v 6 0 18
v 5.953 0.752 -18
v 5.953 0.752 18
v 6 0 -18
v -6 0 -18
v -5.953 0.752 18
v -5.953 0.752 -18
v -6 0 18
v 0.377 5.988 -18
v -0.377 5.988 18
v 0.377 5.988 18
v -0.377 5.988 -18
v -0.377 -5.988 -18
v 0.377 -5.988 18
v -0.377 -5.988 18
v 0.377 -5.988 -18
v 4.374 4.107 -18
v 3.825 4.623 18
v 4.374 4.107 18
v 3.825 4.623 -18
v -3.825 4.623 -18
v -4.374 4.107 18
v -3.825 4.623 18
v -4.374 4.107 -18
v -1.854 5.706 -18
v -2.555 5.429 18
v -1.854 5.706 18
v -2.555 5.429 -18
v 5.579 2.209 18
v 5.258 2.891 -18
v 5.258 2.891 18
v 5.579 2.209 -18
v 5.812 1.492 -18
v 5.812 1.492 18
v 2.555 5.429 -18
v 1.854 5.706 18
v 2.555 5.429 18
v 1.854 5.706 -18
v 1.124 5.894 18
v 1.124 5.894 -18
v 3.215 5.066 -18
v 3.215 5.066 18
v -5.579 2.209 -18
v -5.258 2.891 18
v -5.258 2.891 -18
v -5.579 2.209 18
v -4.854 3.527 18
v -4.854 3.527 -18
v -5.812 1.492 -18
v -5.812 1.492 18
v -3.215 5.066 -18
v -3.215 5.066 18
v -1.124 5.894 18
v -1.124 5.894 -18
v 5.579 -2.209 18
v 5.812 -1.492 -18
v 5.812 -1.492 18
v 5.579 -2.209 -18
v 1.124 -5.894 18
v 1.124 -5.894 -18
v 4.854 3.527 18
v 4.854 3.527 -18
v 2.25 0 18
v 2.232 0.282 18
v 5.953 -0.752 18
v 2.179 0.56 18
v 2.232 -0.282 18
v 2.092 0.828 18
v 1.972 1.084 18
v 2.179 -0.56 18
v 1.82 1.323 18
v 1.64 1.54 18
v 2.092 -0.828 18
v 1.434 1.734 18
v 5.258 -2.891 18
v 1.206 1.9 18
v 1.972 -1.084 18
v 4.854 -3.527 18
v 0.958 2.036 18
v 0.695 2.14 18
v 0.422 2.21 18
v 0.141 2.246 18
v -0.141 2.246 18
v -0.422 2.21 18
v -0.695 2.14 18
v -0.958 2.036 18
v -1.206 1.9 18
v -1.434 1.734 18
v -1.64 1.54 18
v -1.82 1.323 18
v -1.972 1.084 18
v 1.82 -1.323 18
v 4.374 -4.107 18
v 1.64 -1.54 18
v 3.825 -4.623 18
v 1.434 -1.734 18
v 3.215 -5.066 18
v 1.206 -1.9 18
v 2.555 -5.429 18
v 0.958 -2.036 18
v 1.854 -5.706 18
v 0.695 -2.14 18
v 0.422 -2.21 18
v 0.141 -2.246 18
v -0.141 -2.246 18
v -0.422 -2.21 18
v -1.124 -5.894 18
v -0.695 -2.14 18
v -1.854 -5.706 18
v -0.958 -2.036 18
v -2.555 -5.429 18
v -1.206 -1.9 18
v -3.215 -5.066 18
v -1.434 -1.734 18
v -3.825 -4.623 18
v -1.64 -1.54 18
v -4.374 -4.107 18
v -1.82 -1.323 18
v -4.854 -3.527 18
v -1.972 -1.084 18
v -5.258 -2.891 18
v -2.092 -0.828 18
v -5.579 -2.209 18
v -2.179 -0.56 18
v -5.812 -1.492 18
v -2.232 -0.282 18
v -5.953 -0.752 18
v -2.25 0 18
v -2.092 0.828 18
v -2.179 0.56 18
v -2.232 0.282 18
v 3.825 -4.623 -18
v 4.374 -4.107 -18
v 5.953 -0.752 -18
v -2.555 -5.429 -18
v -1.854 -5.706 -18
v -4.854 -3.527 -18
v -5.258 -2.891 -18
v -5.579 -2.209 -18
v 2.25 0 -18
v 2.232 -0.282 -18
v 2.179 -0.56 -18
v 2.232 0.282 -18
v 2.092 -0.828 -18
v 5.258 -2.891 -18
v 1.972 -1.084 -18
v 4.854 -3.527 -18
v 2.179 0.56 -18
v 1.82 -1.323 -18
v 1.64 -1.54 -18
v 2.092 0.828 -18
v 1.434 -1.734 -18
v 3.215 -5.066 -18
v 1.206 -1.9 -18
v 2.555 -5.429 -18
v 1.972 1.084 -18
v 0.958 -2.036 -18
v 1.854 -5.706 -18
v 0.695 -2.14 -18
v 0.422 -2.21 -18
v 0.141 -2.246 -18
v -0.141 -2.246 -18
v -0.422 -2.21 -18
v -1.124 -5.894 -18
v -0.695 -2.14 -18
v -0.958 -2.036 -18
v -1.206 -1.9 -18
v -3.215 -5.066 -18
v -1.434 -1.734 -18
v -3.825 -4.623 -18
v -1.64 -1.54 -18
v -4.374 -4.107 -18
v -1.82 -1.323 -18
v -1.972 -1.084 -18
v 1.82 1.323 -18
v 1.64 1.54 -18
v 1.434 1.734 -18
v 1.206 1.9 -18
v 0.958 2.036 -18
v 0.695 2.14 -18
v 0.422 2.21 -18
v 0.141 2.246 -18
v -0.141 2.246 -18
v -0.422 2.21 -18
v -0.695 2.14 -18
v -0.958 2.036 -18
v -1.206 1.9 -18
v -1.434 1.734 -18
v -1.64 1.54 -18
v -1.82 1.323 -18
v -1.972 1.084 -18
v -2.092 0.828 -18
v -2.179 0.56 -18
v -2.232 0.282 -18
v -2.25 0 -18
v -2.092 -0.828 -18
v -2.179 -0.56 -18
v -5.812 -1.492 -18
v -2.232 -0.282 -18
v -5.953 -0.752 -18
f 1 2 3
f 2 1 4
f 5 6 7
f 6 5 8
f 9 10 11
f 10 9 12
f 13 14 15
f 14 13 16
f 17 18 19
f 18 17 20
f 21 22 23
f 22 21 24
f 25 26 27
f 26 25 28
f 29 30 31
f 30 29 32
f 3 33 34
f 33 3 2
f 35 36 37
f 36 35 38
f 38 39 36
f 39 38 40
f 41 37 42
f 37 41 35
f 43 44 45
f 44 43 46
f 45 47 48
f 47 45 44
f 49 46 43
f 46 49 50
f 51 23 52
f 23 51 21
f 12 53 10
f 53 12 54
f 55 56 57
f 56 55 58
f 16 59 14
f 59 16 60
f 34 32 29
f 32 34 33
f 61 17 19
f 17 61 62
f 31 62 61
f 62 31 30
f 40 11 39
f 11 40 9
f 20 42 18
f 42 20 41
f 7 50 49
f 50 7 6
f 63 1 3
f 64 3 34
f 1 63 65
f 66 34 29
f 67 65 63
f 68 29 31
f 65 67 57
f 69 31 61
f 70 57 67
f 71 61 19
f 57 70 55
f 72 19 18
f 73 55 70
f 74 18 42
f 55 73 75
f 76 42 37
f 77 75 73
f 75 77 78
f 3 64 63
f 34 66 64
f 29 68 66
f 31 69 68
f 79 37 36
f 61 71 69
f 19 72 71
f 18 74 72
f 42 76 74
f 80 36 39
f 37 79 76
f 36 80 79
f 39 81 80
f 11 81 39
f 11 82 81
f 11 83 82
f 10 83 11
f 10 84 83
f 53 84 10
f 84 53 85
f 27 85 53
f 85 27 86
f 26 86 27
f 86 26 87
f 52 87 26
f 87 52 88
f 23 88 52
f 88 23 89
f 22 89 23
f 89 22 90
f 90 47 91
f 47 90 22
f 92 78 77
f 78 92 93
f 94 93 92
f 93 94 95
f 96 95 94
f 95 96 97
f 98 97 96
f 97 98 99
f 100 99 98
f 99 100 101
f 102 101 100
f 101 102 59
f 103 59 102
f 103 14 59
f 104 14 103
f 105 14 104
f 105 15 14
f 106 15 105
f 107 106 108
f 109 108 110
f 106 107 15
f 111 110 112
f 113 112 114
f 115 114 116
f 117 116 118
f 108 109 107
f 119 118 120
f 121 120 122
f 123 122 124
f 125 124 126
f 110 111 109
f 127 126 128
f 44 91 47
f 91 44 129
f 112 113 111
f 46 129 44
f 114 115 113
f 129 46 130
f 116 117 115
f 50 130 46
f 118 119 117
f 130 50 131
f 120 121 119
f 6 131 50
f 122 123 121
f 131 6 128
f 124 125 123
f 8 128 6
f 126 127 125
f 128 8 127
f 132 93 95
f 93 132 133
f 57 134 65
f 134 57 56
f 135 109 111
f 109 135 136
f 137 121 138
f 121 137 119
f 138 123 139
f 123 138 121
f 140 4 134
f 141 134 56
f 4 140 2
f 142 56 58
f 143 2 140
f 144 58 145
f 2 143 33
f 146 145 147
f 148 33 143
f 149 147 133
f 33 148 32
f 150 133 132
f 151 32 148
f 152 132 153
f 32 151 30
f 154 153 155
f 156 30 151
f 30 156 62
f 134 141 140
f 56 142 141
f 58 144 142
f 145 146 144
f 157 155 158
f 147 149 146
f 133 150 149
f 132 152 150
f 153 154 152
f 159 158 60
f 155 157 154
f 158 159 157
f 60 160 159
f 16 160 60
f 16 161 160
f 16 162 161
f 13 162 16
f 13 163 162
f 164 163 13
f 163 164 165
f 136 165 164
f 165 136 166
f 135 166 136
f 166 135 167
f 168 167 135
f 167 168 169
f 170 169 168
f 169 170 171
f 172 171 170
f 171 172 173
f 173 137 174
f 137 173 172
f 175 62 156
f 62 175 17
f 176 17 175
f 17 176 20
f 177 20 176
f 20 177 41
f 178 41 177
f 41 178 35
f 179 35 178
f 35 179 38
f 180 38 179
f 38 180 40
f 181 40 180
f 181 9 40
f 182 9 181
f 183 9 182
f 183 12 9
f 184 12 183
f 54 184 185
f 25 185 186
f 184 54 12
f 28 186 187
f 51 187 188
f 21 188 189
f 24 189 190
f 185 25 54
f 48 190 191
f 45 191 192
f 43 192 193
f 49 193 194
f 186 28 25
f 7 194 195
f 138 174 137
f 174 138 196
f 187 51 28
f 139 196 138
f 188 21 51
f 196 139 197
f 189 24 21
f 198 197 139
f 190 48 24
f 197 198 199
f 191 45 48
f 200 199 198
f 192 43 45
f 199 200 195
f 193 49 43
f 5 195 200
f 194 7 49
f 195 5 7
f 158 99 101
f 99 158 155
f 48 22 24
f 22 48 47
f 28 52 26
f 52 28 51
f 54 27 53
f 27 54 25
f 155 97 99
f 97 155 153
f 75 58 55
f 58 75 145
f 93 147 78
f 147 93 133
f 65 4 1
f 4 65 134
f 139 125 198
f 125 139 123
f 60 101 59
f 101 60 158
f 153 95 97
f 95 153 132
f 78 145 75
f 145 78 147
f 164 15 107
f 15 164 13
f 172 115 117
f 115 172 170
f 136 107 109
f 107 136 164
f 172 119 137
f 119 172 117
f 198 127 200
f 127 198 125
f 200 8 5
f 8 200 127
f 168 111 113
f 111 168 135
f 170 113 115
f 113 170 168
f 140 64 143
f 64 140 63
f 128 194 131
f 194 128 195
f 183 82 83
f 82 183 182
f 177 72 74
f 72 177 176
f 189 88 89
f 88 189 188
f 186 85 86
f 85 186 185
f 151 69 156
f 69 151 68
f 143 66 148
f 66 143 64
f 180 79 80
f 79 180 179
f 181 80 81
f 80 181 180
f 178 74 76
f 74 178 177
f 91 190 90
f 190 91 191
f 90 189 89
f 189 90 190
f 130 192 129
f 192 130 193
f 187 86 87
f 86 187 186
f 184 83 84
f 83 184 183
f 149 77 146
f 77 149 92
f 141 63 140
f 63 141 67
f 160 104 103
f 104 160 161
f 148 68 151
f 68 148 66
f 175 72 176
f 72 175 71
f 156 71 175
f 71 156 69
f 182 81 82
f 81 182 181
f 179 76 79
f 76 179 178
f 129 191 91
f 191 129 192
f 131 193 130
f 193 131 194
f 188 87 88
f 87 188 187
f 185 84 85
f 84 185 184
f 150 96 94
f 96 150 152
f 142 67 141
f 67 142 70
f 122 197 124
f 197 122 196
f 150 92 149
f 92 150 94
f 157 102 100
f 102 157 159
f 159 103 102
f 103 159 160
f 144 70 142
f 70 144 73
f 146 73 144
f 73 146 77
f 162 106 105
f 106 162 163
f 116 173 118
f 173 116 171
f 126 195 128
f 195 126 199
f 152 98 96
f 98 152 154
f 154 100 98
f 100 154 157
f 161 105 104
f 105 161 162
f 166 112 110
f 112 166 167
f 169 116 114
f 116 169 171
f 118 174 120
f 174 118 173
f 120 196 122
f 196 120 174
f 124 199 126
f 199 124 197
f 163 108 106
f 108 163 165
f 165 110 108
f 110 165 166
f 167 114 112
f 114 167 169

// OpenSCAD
$fn = 50;


difference() {
	union() {
		translate(v = [0, 0, -18.0000000000]) {
			cylinder(h = 36, r = 6.0000000000);
		}
	}
	union() {
		translate(v = [0, 0, -100.0000000000]) {
			cylinder(h = 200, r = 2.2500000000);
		}
	}
}
